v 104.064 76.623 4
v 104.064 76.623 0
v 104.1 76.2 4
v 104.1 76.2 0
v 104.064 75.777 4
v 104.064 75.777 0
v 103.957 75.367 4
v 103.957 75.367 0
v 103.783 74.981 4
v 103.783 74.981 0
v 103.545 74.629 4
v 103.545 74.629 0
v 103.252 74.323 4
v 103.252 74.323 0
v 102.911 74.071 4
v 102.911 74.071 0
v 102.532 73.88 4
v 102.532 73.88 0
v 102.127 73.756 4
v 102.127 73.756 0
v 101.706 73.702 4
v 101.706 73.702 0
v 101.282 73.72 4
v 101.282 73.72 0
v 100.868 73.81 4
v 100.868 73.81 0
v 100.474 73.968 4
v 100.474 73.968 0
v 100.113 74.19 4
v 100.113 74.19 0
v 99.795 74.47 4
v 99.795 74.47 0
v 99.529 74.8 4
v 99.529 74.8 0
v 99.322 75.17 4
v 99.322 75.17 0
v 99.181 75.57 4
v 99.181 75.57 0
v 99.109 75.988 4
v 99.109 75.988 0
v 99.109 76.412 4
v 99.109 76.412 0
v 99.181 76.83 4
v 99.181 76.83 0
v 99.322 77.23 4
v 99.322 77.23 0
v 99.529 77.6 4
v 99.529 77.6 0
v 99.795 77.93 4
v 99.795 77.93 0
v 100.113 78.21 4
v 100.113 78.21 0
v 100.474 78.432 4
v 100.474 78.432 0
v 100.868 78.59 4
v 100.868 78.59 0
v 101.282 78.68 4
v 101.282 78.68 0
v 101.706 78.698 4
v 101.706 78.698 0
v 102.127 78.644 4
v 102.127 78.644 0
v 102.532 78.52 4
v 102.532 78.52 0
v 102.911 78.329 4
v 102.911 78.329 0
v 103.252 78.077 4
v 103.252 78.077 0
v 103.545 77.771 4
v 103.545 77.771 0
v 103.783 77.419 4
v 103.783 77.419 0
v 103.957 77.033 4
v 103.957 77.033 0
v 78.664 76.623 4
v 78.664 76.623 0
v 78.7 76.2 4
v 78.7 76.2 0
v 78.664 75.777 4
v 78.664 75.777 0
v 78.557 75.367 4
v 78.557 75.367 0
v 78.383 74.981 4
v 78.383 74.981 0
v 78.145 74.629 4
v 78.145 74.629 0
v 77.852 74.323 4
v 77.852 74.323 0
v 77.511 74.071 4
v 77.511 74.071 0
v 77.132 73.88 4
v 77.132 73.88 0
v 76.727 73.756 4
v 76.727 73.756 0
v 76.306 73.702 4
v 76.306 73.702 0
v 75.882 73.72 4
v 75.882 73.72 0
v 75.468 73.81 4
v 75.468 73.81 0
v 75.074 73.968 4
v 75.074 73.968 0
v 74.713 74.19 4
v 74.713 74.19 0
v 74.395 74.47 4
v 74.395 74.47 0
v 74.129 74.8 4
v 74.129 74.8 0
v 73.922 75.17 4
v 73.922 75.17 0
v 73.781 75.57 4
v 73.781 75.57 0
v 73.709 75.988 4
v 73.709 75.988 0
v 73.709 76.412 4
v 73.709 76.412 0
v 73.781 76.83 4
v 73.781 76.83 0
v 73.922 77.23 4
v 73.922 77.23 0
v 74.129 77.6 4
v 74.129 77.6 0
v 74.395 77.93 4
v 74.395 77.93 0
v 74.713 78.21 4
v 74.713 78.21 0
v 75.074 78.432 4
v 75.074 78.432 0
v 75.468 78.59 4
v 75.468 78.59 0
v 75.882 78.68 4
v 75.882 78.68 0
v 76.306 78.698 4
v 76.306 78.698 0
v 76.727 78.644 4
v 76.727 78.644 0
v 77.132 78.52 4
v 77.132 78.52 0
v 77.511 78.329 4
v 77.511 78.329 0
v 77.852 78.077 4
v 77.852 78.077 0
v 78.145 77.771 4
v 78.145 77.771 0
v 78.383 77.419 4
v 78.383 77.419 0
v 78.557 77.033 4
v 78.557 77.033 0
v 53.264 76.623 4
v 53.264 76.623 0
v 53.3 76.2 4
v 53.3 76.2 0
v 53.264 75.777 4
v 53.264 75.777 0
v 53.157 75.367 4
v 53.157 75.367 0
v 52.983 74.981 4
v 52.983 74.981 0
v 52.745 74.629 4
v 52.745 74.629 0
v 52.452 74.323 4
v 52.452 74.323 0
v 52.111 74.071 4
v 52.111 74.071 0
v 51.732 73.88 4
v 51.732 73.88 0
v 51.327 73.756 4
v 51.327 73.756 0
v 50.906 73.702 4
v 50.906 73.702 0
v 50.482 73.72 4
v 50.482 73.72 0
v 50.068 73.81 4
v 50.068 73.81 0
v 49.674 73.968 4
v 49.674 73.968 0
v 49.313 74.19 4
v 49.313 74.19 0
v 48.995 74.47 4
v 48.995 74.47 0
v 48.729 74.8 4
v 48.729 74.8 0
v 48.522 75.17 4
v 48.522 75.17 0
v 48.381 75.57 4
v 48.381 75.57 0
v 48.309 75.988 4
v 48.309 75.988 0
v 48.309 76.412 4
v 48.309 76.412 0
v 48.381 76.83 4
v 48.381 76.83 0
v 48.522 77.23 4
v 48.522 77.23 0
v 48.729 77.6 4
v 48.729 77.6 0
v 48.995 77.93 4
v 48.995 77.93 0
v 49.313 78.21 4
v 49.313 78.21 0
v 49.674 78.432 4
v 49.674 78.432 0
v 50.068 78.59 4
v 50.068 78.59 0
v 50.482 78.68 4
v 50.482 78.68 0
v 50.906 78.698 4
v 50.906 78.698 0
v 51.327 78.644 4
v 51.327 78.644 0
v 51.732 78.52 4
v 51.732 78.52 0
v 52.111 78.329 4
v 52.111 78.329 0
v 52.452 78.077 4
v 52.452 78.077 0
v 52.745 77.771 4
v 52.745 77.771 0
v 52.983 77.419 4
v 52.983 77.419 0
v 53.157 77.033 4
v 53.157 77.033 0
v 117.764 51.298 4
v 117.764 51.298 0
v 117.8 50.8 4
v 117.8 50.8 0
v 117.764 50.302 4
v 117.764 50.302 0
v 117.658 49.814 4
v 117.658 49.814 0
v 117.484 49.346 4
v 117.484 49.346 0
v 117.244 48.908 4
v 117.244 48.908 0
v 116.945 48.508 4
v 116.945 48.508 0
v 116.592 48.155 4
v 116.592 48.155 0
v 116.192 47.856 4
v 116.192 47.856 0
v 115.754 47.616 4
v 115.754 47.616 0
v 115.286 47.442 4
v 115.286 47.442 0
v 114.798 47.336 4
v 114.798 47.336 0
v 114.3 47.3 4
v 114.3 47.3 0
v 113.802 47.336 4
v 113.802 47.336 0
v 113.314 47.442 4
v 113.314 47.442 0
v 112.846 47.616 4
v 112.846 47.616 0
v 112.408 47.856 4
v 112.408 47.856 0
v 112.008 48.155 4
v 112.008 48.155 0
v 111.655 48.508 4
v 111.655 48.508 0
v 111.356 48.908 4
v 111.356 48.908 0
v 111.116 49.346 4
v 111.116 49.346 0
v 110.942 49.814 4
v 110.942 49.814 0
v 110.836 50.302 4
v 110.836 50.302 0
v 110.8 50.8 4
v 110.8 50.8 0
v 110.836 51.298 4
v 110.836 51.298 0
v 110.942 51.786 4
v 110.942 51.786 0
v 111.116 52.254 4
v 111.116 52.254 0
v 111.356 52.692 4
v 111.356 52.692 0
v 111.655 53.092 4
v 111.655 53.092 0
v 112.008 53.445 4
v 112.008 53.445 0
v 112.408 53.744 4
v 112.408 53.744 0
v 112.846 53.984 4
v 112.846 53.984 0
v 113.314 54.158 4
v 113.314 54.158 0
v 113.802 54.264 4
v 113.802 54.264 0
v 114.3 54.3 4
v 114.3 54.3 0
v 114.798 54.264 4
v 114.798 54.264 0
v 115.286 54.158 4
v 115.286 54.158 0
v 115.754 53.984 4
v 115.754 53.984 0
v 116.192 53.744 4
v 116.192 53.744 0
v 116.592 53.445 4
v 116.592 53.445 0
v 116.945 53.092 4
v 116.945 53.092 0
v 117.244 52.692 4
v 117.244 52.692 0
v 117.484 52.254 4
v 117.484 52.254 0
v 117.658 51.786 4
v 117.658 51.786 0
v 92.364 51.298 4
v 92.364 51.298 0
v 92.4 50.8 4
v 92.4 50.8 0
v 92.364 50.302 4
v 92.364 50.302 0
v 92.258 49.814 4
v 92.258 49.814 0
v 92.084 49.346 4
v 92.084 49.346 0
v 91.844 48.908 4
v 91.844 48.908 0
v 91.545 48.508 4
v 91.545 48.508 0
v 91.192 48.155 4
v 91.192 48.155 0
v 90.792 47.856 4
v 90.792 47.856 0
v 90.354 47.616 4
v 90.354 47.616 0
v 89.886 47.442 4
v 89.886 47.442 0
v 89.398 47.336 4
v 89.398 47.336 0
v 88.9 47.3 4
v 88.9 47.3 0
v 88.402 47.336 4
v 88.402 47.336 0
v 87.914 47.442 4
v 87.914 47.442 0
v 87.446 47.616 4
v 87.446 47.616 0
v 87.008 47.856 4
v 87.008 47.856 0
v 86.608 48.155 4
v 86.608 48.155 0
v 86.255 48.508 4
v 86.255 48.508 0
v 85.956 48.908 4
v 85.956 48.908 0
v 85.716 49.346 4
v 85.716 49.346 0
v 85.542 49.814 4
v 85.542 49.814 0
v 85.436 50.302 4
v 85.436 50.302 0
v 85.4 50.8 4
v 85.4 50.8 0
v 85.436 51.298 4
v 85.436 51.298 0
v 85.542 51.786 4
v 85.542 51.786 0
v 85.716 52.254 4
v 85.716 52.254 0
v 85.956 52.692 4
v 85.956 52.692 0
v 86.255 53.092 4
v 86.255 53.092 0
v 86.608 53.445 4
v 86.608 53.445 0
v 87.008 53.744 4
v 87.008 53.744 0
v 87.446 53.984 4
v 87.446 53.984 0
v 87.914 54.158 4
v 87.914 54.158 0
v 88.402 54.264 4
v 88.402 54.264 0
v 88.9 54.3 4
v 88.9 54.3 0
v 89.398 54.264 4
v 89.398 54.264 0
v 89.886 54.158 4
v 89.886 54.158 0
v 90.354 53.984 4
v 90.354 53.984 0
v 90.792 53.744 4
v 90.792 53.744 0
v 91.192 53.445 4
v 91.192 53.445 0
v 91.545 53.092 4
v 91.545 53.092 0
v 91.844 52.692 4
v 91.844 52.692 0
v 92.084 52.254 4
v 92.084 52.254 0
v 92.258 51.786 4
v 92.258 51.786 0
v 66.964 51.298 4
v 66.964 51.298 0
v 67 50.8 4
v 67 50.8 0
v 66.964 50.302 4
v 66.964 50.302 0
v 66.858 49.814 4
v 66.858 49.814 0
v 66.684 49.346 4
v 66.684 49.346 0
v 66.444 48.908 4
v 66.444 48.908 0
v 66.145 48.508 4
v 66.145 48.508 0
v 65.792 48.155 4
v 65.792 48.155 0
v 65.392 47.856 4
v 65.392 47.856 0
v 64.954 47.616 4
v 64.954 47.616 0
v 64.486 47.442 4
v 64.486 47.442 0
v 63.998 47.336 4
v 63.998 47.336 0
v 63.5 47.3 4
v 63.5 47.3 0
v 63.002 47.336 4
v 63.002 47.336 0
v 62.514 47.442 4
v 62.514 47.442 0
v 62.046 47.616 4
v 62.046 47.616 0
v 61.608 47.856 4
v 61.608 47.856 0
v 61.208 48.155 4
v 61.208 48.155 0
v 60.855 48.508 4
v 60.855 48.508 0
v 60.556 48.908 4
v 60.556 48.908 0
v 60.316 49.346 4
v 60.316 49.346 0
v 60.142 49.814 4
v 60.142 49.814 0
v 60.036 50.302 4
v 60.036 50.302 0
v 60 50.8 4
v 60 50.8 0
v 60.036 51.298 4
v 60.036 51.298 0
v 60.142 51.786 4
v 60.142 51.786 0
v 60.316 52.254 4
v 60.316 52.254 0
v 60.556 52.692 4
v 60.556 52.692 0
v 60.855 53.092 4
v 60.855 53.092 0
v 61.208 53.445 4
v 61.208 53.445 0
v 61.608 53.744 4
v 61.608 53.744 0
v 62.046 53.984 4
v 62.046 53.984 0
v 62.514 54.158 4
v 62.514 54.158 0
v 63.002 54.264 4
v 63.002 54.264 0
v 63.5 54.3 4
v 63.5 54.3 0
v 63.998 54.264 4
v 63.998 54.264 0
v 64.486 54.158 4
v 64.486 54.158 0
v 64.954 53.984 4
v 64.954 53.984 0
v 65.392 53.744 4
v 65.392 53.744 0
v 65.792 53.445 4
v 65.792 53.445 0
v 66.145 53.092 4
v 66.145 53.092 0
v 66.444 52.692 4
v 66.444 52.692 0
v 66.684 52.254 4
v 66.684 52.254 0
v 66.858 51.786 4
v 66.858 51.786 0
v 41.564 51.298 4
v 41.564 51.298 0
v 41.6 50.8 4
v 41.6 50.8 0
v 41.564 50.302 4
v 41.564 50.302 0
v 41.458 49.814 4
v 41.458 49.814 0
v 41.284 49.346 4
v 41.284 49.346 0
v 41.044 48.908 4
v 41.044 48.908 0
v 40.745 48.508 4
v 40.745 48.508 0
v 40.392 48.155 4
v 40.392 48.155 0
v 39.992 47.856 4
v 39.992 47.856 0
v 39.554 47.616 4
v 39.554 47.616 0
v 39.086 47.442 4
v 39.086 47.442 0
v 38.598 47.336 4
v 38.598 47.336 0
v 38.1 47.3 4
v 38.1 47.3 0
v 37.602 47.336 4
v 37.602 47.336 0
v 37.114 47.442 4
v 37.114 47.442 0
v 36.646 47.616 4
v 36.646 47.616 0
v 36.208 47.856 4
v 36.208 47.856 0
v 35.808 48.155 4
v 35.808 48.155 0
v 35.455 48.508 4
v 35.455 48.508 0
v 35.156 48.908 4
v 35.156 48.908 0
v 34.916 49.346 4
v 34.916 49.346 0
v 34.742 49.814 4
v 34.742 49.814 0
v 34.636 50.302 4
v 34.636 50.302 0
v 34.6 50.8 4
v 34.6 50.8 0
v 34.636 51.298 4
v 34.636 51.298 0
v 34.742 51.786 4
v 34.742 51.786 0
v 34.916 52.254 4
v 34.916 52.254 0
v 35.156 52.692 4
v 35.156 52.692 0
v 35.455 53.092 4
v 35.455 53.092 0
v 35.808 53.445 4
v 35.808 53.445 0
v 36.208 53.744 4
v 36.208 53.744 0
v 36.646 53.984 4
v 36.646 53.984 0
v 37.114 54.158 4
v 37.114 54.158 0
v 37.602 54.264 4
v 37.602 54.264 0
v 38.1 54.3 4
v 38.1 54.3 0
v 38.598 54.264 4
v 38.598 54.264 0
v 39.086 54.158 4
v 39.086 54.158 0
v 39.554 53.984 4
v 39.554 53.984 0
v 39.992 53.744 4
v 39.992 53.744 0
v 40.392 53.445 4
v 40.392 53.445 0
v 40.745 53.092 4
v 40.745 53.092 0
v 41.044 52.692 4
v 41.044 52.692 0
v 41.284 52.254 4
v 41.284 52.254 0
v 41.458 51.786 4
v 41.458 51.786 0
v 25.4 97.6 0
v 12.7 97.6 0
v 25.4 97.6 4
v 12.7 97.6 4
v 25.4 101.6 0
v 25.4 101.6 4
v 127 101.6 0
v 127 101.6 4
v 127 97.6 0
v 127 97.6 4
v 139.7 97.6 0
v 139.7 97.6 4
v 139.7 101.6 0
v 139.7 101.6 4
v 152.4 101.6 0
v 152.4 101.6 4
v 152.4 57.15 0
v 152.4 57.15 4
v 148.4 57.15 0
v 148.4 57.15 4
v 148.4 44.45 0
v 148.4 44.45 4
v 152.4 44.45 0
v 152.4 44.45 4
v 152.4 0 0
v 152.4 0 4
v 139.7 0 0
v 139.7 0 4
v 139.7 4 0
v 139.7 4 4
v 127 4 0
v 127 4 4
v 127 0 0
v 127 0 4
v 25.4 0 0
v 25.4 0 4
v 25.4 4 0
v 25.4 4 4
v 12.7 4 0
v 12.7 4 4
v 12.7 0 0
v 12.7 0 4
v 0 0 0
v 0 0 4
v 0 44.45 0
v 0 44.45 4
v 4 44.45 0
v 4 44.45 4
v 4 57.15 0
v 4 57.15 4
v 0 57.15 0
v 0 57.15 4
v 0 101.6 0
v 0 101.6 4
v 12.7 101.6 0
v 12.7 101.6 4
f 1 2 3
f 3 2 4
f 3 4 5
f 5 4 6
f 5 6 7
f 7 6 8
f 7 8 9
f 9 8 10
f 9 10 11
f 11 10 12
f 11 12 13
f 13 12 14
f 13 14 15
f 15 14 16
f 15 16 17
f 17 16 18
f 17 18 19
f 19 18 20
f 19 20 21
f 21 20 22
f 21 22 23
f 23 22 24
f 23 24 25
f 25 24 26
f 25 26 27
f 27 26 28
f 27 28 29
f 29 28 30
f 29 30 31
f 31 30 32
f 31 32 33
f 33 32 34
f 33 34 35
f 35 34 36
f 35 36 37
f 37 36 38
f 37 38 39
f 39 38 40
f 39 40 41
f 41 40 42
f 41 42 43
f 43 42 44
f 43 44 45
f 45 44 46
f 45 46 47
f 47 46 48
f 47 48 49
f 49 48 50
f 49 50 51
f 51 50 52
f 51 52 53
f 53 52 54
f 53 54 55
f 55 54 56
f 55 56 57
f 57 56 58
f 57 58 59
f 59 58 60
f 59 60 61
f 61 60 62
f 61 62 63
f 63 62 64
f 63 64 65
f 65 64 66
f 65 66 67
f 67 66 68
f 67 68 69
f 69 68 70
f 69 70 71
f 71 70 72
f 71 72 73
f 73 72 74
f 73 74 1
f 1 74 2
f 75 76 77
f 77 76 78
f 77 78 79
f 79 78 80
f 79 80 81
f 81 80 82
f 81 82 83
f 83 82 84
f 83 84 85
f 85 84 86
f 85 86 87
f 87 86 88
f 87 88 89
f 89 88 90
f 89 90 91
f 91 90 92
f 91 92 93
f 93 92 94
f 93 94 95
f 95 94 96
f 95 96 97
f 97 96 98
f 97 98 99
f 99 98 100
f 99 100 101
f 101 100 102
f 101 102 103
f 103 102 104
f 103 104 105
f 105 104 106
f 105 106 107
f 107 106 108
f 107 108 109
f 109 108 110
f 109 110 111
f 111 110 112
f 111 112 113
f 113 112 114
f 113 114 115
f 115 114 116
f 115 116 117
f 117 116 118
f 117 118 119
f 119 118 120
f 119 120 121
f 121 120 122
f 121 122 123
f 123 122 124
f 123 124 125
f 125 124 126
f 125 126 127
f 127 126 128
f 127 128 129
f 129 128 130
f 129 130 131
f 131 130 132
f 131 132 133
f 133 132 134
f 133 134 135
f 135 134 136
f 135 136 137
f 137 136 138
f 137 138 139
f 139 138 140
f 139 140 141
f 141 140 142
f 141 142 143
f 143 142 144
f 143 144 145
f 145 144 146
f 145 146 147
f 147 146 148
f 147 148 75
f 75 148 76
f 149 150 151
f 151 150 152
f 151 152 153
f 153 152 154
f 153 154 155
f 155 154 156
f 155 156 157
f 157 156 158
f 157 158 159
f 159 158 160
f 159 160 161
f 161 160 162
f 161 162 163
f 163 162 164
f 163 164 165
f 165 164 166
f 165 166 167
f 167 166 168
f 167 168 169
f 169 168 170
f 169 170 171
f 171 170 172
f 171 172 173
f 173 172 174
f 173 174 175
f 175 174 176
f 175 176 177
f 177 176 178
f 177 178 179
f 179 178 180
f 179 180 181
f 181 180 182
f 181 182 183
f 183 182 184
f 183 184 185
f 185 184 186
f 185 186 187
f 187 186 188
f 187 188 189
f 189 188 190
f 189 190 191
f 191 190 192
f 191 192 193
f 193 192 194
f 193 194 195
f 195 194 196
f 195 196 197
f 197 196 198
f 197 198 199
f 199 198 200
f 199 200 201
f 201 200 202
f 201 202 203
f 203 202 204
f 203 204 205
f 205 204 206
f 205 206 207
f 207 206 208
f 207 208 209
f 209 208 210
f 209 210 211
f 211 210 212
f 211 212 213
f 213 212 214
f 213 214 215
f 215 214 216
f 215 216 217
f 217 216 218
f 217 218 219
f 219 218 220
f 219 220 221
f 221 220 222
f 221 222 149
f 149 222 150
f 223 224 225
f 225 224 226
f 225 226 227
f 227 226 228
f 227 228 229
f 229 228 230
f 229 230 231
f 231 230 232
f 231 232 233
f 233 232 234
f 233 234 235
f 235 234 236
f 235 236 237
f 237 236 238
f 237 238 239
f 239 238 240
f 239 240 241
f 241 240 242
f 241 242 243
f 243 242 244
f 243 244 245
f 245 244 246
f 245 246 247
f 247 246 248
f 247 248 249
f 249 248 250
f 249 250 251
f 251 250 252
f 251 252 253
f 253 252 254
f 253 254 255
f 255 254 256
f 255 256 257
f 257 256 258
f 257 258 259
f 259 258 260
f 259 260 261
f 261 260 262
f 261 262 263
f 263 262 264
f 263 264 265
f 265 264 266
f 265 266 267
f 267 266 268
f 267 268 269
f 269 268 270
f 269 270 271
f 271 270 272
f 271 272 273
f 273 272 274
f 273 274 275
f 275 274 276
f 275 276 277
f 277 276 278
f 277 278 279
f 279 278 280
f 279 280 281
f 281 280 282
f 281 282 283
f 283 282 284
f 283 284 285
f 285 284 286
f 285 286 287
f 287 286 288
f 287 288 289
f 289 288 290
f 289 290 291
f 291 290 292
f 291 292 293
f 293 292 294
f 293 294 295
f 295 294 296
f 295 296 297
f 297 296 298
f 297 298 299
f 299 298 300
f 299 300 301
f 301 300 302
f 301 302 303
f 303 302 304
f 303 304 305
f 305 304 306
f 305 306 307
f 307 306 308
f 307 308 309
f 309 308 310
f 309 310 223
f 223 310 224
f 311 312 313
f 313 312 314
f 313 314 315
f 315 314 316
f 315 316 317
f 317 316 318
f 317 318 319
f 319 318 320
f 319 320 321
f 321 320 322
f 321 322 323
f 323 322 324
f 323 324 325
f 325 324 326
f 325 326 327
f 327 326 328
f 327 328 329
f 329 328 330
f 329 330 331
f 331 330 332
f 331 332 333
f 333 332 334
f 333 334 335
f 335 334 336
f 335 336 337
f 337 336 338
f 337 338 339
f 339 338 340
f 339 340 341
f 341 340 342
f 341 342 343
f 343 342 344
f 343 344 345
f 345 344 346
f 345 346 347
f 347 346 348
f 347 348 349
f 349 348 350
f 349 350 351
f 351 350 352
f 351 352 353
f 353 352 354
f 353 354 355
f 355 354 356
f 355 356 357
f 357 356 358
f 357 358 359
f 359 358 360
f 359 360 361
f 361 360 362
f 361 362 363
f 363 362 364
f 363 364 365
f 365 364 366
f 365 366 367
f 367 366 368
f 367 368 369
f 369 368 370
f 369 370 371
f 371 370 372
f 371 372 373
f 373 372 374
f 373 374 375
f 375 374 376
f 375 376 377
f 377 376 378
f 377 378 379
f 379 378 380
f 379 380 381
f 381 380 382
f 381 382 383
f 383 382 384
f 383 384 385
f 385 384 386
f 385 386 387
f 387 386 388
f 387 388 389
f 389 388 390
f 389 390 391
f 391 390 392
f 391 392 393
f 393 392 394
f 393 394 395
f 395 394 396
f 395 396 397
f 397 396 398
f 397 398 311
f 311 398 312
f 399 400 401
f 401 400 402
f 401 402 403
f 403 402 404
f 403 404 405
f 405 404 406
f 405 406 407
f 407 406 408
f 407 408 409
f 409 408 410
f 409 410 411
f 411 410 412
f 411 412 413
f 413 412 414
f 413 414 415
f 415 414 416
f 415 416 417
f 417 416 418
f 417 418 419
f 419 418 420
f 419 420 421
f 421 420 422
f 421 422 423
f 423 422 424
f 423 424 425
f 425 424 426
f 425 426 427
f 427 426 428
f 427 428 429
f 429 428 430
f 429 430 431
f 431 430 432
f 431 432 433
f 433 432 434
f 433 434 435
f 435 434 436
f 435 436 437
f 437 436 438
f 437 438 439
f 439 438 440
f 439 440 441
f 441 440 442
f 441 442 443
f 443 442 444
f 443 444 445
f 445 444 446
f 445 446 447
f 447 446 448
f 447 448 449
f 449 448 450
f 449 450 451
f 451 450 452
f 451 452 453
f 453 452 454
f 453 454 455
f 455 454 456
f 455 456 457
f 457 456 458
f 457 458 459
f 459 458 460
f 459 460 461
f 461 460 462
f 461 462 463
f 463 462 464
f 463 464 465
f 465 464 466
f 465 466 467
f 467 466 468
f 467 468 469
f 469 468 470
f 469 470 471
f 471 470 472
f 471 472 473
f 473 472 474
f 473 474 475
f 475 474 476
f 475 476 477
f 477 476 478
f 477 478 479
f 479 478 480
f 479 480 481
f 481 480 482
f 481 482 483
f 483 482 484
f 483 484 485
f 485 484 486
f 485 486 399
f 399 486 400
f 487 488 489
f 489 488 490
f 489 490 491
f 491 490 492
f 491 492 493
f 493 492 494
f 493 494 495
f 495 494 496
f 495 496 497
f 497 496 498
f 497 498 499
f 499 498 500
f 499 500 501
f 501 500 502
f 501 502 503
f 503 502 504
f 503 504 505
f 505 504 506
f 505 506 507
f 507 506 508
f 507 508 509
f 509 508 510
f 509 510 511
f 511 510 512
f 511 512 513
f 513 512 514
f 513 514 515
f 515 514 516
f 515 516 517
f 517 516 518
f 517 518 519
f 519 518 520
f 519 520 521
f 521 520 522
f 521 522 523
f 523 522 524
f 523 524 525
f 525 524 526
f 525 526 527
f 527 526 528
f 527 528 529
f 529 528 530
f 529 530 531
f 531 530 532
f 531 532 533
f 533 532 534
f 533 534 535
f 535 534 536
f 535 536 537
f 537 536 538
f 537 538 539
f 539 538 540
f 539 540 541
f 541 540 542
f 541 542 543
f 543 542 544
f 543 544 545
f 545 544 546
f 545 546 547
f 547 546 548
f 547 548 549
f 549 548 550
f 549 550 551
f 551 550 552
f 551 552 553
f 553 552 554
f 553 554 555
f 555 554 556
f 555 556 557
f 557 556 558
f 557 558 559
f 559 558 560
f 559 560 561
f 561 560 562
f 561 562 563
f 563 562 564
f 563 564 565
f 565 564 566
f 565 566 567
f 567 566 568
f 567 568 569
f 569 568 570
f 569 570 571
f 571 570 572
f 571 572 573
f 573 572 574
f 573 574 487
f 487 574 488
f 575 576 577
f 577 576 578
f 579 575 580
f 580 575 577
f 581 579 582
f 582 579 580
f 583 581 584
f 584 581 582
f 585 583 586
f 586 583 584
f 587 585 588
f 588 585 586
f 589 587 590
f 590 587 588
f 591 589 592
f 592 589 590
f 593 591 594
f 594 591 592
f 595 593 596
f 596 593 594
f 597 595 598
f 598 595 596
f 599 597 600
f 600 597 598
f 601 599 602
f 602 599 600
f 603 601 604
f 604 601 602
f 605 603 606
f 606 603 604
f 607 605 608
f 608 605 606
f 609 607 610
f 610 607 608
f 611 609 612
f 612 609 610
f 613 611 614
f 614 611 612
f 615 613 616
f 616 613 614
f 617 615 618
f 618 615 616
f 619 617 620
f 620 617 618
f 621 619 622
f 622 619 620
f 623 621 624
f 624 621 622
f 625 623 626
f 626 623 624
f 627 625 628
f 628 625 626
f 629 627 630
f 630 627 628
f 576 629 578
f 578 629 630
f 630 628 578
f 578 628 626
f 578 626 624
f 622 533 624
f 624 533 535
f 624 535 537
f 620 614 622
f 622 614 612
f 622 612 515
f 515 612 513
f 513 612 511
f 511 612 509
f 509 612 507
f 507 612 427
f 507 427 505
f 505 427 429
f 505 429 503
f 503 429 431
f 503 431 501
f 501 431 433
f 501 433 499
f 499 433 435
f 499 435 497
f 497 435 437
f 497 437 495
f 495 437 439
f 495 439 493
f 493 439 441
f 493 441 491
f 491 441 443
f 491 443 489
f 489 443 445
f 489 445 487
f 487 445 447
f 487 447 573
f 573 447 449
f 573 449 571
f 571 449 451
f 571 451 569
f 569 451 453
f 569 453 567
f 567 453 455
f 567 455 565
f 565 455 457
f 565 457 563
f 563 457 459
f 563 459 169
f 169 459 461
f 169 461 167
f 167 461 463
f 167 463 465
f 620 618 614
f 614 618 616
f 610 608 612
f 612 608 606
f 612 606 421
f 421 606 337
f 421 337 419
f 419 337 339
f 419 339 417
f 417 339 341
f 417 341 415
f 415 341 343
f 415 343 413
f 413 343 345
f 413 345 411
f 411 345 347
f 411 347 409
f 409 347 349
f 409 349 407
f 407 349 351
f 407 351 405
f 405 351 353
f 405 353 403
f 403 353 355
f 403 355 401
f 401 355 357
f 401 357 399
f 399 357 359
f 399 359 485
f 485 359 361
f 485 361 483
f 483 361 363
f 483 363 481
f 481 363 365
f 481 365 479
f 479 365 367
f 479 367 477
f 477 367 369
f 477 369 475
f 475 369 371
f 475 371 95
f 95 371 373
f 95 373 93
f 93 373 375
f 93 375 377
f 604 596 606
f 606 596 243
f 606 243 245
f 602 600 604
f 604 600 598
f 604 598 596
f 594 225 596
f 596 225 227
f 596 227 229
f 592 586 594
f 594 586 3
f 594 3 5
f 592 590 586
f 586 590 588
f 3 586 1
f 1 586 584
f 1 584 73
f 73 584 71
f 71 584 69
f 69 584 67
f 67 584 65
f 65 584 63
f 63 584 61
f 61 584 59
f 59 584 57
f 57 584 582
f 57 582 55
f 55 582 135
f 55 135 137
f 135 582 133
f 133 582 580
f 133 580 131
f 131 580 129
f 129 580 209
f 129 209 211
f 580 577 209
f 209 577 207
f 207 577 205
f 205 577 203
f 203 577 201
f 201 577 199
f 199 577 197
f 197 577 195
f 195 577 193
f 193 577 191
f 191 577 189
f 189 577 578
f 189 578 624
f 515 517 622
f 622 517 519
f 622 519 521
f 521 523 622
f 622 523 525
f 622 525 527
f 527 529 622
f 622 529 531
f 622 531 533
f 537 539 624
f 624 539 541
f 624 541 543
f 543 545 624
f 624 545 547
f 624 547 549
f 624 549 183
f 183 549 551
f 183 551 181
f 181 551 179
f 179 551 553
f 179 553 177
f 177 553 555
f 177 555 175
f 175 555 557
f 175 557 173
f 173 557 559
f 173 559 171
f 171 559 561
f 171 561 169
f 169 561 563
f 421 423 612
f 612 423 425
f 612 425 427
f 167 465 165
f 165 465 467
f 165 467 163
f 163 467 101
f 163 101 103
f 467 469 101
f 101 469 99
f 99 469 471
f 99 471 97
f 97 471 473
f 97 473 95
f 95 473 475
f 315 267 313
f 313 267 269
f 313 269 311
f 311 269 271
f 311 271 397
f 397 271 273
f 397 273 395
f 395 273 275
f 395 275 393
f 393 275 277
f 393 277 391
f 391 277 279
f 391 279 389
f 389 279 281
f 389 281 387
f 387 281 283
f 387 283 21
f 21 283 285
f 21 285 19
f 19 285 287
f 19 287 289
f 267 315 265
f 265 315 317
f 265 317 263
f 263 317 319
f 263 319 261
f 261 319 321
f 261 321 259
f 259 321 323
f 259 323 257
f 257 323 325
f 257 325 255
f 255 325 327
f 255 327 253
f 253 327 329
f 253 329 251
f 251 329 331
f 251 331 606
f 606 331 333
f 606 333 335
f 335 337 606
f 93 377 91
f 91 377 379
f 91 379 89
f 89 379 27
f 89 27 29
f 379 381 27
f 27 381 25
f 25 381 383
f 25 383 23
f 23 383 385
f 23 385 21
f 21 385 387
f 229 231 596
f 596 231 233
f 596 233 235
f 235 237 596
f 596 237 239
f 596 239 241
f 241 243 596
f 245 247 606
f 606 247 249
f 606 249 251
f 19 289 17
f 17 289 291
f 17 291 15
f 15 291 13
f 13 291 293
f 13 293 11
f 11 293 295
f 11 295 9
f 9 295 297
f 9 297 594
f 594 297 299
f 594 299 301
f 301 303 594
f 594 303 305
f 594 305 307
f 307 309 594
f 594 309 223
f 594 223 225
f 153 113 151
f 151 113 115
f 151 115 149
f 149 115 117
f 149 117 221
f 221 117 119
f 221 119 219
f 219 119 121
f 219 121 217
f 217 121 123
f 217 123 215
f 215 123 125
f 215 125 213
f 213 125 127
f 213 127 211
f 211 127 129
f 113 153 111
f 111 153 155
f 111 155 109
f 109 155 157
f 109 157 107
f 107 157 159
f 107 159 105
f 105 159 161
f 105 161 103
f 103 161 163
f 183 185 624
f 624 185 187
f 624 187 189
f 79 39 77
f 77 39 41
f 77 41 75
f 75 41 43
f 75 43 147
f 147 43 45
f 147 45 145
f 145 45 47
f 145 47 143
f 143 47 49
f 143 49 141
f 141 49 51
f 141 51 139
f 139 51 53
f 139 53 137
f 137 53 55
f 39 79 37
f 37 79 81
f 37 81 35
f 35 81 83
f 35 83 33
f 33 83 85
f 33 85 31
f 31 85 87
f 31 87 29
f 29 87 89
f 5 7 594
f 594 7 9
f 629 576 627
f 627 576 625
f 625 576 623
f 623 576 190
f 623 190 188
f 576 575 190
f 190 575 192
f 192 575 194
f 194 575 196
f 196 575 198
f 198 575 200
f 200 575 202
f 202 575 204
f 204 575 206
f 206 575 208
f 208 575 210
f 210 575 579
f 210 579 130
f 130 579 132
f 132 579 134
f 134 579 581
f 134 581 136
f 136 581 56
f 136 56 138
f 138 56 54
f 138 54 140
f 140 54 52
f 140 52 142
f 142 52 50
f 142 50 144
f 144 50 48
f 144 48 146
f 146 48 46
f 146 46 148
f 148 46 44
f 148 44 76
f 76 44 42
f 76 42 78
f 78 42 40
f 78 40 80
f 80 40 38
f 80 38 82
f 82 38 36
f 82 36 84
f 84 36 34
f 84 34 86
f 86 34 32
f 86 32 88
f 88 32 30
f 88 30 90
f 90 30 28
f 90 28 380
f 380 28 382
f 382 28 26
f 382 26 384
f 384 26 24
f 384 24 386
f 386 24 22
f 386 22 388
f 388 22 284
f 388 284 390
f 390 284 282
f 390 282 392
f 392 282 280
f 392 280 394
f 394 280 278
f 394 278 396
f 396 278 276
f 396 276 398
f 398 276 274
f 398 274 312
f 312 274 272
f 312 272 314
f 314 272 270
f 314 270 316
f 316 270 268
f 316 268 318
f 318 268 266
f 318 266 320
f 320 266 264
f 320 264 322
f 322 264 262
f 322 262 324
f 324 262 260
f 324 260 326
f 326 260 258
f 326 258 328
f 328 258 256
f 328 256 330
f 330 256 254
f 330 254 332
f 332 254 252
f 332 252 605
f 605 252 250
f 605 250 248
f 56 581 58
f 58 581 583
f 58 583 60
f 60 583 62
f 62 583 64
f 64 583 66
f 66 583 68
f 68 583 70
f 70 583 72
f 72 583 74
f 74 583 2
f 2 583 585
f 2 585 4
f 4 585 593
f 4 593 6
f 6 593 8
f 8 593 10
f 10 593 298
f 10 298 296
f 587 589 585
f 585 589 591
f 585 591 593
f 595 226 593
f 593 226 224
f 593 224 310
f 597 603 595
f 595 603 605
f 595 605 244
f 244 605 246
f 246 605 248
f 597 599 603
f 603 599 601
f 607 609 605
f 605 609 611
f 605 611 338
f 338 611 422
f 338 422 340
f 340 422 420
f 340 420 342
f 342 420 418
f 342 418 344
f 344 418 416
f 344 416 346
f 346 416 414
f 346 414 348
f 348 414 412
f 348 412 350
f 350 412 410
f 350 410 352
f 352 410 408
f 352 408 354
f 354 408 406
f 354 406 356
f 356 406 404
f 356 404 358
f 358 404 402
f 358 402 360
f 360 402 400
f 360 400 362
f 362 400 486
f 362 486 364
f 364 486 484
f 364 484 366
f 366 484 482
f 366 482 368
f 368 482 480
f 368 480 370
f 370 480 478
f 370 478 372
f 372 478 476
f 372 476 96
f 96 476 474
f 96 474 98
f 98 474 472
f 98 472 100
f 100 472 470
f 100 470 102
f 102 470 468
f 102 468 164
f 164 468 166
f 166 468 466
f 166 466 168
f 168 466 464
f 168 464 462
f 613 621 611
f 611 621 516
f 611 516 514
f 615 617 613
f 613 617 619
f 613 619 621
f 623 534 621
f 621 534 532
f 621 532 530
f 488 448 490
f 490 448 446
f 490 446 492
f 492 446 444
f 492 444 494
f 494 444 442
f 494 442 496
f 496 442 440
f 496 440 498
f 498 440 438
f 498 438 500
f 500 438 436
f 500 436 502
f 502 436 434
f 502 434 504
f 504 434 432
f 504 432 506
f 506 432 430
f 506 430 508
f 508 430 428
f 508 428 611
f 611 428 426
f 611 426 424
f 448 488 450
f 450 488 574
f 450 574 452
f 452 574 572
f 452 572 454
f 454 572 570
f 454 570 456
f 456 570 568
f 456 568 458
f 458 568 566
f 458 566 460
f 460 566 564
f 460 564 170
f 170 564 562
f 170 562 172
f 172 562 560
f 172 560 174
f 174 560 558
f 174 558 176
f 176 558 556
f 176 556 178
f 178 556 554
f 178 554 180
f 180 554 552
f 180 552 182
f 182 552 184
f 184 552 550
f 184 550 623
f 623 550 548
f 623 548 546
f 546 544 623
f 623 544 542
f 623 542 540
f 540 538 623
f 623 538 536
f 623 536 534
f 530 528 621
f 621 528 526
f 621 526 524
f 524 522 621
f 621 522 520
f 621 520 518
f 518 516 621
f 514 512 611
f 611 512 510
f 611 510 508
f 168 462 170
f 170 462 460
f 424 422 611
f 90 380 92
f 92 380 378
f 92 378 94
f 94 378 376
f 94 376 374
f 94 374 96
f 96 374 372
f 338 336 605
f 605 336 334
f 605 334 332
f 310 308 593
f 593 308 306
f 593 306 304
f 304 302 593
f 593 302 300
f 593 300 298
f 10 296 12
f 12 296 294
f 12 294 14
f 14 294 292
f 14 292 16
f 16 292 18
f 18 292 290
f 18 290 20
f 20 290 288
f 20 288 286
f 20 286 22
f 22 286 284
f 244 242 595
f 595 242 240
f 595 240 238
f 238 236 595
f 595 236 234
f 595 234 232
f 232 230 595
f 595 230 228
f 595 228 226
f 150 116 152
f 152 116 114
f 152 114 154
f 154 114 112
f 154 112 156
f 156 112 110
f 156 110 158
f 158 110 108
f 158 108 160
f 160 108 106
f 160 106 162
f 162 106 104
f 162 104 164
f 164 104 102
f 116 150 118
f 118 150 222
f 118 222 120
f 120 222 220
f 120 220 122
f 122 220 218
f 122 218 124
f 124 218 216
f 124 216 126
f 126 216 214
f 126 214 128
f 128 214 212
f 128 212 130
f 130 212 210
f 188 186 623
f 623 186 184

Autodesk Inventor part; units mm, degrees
ref_plane "YZ Plane" through (0, 0, 0) normal (1, 0, 0) x (0, 1, 0)
ref_plane "XZ Plane" through (0, 0, 0) normal (0, 1, 0) x (-1, 0, 0)
ref_plane "XY Plane" through (0, 0, 0) normal (0, 0, 1) x (1, 0, 0)
sketch "Sketch1" plane through (0, 0, 0) normal (0, 0, 1) x (1, 0, 0)
  line L0 (0, 0) -> (152.4, 0)
  line L1 (152.4, 0) -> (152.4, 101.6)
  line L2 (152.4, 101.6) -> (0, 101.6)
  line L3 (0, 101.6) -> (0, 0)
  circle A0 centre (38.1, 50.8) radius 3.5
  circle A1 centre (63.5, 50.8) radius 3.5
  circle A2 centre (88.9, 50.8) radius 3.5
  circle A3 centre (114.3, 50.8) radius 3.5
  circle A4 centre (50.8, 76.2) radius 2.5
  circle A5 centre (76.2, 76.2) radius 2.5
  circle A6 centre (101.6, 76.2) radius 2.5
  line L4 (12.7, 101.6) -> (25.4, 101.6)
  line L5 (25.4, 101.6) -> (25.4, 97.6)
  line L6 (25.4, 97.6) -> (12.7, 97.6)
  line L7 (12.7, 97.6) -> (12.7, 101.6)
  line L8 (139.7, 101.6) -> (127, 101.6)
  line L9 (127, 101.6) -> (127, 97.6)
  line L10 (127, 97.6) -> (139.7, 97.6)
  line L11 (139.7, 97.6) -> (139.7, 101.6)
  line L12 (139.7, 0) -> (127, 0)
  line L13 (127, 0) -> (127, 4)
  line L14 (127, 4) -> (139.7, 4)
  line L15 (139.7, 4) -> (139.7, 0)
  line L16 (12.7, 0) -> (25.4, 0)
  line L17 (25.4, 0) -> (25.4, 4)
  line L18 (25.4, 4) -> (12.7, 4)
  line L19 (12.7, 4) -> (12.7, 0)
  line L20 (0, 57.15) -> (4, 57.15)
  line L21 (4, 57.15) -> (4, 44.45)
  line L22 (4, 44.45) -> (0, 44.45)
  line L23 (0, 44.45) -> (0, 57.15)
  line L24 (152.4, 57.15) -> (148.4, 57.15)
  line L25 (148.4, 57.15) -> (148.4, 44.45)
  line L26 (148.4, 44.45) -> (152.4, 44.45)
  line L27 (152.4, 44.45) -> (152.4, 57.15)
  point P0 (76.2, 0)
  point P1 (76.2, 101.6)
  point P2 (12.7, 99.6)
  point P3 (139.7, 99.6)
  point P4 (12.7, 2)
  point P5 (0, 50.8)
  point P6 (4, 50.8)
  point P7 (148.4, 50.8)
  point P8 (152.4, 50.8)
  point P9 (0, 50.8)
  dimension "d0" = 152.4
  dimension "d1" = 101.6
  dimension "d2" = 7
  dimension "d5" = 25.4
  dimension "d10" = 12.7
  dimension "d11" = 50.8
  dimension "d12" = 5
  dimension "d15" = 25.4
  dimension "d20" = 25.4
  dimension "d21" = 12.7
  dimension "d22" = 4
  dimension "d23" = 12.7
  dimension "d24" = 12.7
  dimension "d25" = 4
  dimension "d26" = 12.7
  dimension "d27" = 4
  dimension "d28" = 12.7
  dimension "d29" = 4
  dimension "d30" = 4
  dimension "d31" = 12.7
  dimension "d32" = 4
  dimension "d33" = 12.7
  dimension "d34" = 12.7
  dimension "d35" = 12.7
extrude "Extrusion1" add sketch "Sketch1" along normal blind 4 contours L3 L22 L21 L20 L2 L7 L6 L5 L9 L10 L11 L1 L24 L25 L26 L0 L15 L14 L13 L17 L18 L19
properties part number "Front Panel" material "Wood (Birch)"
